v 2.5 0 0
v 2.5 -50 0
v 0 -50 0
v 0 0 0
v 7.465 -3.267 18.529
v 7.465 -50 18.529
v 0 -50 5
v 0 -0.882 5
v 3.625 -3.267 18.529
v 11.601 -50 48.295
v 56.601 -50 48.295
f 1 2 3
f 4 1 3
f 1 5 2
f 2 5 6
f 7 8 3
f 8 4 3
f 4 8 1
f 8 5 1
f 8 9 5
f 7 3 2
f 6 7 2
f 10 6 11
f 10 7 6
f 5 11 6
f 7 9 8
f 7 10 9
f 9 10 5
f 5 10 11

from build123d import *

# Parameters (mm, degrees)
PAD_DEPTH       = 50
POCKET_DEPTH    = 5
PAD001_DEPTH    = 50
POCKET002_DEPTH = 80
POCKET003_DEPTH = 100


with BuildPart() as part:
    # Sketch → Pad (new body)
    with BuildSketch(Plane.XZ):
        Polygon((0, 5), (12.940952, 53.296291), (15.440949, 48.296292), (2.5, 0), (0, 0), align=None)
    extrude(amount=PAD_DEPTH)

    # Sketch001 (on Face3 of Pad) → Pocket (cut)
    with BuildSketch(Plane(origin=(-1.25, 0, 0.334936), x_dir=(-0.258819, 0, -0.965926), z_dir=(-0.965926, 0, 0.258819))):
        Polygon((-54.829629, 0), (-54.829629, 50), (-19.829629, 50), (-49.652199, 0), align=None)
    extrude(amount=-POCKET_DEPTH, mode=Mode.SUBTRACT)

    # Sketch002 → Pad001 (join)
    with BuildSketch(Plane.XZ):
        Polygon((11.600935, 48.295278), (3.882286, 19.488887), (7.464816, 18.528951), (56.600935, 18.528951), (56.600935, 48.295278), align=None)
    extrude(amount=PAD001_DEPTH)

    # Sketch005 → Pocket002 (cut)
    with BuildSketch(Plane.YZ):
        Polygon((0, 48.295278), (0, 0), (-3.267149, 18.528951), (-50, 48.295278), align=None)
    extrude(amount=POCKET002_DEPTH, mode=Mode.SUBTRACT)

    # Sketch007 → Pocket003 (cut)
    with BuildSketch(Plane.XZ):
        Polygon((7.464816, 18.528951), (56.600935, 18.528951), (56.600935, 48.295278), align=None)
    extrude(amount=POCKET003_DEPTH, mode=Mode.SUBTRACT)


solid = part.part
